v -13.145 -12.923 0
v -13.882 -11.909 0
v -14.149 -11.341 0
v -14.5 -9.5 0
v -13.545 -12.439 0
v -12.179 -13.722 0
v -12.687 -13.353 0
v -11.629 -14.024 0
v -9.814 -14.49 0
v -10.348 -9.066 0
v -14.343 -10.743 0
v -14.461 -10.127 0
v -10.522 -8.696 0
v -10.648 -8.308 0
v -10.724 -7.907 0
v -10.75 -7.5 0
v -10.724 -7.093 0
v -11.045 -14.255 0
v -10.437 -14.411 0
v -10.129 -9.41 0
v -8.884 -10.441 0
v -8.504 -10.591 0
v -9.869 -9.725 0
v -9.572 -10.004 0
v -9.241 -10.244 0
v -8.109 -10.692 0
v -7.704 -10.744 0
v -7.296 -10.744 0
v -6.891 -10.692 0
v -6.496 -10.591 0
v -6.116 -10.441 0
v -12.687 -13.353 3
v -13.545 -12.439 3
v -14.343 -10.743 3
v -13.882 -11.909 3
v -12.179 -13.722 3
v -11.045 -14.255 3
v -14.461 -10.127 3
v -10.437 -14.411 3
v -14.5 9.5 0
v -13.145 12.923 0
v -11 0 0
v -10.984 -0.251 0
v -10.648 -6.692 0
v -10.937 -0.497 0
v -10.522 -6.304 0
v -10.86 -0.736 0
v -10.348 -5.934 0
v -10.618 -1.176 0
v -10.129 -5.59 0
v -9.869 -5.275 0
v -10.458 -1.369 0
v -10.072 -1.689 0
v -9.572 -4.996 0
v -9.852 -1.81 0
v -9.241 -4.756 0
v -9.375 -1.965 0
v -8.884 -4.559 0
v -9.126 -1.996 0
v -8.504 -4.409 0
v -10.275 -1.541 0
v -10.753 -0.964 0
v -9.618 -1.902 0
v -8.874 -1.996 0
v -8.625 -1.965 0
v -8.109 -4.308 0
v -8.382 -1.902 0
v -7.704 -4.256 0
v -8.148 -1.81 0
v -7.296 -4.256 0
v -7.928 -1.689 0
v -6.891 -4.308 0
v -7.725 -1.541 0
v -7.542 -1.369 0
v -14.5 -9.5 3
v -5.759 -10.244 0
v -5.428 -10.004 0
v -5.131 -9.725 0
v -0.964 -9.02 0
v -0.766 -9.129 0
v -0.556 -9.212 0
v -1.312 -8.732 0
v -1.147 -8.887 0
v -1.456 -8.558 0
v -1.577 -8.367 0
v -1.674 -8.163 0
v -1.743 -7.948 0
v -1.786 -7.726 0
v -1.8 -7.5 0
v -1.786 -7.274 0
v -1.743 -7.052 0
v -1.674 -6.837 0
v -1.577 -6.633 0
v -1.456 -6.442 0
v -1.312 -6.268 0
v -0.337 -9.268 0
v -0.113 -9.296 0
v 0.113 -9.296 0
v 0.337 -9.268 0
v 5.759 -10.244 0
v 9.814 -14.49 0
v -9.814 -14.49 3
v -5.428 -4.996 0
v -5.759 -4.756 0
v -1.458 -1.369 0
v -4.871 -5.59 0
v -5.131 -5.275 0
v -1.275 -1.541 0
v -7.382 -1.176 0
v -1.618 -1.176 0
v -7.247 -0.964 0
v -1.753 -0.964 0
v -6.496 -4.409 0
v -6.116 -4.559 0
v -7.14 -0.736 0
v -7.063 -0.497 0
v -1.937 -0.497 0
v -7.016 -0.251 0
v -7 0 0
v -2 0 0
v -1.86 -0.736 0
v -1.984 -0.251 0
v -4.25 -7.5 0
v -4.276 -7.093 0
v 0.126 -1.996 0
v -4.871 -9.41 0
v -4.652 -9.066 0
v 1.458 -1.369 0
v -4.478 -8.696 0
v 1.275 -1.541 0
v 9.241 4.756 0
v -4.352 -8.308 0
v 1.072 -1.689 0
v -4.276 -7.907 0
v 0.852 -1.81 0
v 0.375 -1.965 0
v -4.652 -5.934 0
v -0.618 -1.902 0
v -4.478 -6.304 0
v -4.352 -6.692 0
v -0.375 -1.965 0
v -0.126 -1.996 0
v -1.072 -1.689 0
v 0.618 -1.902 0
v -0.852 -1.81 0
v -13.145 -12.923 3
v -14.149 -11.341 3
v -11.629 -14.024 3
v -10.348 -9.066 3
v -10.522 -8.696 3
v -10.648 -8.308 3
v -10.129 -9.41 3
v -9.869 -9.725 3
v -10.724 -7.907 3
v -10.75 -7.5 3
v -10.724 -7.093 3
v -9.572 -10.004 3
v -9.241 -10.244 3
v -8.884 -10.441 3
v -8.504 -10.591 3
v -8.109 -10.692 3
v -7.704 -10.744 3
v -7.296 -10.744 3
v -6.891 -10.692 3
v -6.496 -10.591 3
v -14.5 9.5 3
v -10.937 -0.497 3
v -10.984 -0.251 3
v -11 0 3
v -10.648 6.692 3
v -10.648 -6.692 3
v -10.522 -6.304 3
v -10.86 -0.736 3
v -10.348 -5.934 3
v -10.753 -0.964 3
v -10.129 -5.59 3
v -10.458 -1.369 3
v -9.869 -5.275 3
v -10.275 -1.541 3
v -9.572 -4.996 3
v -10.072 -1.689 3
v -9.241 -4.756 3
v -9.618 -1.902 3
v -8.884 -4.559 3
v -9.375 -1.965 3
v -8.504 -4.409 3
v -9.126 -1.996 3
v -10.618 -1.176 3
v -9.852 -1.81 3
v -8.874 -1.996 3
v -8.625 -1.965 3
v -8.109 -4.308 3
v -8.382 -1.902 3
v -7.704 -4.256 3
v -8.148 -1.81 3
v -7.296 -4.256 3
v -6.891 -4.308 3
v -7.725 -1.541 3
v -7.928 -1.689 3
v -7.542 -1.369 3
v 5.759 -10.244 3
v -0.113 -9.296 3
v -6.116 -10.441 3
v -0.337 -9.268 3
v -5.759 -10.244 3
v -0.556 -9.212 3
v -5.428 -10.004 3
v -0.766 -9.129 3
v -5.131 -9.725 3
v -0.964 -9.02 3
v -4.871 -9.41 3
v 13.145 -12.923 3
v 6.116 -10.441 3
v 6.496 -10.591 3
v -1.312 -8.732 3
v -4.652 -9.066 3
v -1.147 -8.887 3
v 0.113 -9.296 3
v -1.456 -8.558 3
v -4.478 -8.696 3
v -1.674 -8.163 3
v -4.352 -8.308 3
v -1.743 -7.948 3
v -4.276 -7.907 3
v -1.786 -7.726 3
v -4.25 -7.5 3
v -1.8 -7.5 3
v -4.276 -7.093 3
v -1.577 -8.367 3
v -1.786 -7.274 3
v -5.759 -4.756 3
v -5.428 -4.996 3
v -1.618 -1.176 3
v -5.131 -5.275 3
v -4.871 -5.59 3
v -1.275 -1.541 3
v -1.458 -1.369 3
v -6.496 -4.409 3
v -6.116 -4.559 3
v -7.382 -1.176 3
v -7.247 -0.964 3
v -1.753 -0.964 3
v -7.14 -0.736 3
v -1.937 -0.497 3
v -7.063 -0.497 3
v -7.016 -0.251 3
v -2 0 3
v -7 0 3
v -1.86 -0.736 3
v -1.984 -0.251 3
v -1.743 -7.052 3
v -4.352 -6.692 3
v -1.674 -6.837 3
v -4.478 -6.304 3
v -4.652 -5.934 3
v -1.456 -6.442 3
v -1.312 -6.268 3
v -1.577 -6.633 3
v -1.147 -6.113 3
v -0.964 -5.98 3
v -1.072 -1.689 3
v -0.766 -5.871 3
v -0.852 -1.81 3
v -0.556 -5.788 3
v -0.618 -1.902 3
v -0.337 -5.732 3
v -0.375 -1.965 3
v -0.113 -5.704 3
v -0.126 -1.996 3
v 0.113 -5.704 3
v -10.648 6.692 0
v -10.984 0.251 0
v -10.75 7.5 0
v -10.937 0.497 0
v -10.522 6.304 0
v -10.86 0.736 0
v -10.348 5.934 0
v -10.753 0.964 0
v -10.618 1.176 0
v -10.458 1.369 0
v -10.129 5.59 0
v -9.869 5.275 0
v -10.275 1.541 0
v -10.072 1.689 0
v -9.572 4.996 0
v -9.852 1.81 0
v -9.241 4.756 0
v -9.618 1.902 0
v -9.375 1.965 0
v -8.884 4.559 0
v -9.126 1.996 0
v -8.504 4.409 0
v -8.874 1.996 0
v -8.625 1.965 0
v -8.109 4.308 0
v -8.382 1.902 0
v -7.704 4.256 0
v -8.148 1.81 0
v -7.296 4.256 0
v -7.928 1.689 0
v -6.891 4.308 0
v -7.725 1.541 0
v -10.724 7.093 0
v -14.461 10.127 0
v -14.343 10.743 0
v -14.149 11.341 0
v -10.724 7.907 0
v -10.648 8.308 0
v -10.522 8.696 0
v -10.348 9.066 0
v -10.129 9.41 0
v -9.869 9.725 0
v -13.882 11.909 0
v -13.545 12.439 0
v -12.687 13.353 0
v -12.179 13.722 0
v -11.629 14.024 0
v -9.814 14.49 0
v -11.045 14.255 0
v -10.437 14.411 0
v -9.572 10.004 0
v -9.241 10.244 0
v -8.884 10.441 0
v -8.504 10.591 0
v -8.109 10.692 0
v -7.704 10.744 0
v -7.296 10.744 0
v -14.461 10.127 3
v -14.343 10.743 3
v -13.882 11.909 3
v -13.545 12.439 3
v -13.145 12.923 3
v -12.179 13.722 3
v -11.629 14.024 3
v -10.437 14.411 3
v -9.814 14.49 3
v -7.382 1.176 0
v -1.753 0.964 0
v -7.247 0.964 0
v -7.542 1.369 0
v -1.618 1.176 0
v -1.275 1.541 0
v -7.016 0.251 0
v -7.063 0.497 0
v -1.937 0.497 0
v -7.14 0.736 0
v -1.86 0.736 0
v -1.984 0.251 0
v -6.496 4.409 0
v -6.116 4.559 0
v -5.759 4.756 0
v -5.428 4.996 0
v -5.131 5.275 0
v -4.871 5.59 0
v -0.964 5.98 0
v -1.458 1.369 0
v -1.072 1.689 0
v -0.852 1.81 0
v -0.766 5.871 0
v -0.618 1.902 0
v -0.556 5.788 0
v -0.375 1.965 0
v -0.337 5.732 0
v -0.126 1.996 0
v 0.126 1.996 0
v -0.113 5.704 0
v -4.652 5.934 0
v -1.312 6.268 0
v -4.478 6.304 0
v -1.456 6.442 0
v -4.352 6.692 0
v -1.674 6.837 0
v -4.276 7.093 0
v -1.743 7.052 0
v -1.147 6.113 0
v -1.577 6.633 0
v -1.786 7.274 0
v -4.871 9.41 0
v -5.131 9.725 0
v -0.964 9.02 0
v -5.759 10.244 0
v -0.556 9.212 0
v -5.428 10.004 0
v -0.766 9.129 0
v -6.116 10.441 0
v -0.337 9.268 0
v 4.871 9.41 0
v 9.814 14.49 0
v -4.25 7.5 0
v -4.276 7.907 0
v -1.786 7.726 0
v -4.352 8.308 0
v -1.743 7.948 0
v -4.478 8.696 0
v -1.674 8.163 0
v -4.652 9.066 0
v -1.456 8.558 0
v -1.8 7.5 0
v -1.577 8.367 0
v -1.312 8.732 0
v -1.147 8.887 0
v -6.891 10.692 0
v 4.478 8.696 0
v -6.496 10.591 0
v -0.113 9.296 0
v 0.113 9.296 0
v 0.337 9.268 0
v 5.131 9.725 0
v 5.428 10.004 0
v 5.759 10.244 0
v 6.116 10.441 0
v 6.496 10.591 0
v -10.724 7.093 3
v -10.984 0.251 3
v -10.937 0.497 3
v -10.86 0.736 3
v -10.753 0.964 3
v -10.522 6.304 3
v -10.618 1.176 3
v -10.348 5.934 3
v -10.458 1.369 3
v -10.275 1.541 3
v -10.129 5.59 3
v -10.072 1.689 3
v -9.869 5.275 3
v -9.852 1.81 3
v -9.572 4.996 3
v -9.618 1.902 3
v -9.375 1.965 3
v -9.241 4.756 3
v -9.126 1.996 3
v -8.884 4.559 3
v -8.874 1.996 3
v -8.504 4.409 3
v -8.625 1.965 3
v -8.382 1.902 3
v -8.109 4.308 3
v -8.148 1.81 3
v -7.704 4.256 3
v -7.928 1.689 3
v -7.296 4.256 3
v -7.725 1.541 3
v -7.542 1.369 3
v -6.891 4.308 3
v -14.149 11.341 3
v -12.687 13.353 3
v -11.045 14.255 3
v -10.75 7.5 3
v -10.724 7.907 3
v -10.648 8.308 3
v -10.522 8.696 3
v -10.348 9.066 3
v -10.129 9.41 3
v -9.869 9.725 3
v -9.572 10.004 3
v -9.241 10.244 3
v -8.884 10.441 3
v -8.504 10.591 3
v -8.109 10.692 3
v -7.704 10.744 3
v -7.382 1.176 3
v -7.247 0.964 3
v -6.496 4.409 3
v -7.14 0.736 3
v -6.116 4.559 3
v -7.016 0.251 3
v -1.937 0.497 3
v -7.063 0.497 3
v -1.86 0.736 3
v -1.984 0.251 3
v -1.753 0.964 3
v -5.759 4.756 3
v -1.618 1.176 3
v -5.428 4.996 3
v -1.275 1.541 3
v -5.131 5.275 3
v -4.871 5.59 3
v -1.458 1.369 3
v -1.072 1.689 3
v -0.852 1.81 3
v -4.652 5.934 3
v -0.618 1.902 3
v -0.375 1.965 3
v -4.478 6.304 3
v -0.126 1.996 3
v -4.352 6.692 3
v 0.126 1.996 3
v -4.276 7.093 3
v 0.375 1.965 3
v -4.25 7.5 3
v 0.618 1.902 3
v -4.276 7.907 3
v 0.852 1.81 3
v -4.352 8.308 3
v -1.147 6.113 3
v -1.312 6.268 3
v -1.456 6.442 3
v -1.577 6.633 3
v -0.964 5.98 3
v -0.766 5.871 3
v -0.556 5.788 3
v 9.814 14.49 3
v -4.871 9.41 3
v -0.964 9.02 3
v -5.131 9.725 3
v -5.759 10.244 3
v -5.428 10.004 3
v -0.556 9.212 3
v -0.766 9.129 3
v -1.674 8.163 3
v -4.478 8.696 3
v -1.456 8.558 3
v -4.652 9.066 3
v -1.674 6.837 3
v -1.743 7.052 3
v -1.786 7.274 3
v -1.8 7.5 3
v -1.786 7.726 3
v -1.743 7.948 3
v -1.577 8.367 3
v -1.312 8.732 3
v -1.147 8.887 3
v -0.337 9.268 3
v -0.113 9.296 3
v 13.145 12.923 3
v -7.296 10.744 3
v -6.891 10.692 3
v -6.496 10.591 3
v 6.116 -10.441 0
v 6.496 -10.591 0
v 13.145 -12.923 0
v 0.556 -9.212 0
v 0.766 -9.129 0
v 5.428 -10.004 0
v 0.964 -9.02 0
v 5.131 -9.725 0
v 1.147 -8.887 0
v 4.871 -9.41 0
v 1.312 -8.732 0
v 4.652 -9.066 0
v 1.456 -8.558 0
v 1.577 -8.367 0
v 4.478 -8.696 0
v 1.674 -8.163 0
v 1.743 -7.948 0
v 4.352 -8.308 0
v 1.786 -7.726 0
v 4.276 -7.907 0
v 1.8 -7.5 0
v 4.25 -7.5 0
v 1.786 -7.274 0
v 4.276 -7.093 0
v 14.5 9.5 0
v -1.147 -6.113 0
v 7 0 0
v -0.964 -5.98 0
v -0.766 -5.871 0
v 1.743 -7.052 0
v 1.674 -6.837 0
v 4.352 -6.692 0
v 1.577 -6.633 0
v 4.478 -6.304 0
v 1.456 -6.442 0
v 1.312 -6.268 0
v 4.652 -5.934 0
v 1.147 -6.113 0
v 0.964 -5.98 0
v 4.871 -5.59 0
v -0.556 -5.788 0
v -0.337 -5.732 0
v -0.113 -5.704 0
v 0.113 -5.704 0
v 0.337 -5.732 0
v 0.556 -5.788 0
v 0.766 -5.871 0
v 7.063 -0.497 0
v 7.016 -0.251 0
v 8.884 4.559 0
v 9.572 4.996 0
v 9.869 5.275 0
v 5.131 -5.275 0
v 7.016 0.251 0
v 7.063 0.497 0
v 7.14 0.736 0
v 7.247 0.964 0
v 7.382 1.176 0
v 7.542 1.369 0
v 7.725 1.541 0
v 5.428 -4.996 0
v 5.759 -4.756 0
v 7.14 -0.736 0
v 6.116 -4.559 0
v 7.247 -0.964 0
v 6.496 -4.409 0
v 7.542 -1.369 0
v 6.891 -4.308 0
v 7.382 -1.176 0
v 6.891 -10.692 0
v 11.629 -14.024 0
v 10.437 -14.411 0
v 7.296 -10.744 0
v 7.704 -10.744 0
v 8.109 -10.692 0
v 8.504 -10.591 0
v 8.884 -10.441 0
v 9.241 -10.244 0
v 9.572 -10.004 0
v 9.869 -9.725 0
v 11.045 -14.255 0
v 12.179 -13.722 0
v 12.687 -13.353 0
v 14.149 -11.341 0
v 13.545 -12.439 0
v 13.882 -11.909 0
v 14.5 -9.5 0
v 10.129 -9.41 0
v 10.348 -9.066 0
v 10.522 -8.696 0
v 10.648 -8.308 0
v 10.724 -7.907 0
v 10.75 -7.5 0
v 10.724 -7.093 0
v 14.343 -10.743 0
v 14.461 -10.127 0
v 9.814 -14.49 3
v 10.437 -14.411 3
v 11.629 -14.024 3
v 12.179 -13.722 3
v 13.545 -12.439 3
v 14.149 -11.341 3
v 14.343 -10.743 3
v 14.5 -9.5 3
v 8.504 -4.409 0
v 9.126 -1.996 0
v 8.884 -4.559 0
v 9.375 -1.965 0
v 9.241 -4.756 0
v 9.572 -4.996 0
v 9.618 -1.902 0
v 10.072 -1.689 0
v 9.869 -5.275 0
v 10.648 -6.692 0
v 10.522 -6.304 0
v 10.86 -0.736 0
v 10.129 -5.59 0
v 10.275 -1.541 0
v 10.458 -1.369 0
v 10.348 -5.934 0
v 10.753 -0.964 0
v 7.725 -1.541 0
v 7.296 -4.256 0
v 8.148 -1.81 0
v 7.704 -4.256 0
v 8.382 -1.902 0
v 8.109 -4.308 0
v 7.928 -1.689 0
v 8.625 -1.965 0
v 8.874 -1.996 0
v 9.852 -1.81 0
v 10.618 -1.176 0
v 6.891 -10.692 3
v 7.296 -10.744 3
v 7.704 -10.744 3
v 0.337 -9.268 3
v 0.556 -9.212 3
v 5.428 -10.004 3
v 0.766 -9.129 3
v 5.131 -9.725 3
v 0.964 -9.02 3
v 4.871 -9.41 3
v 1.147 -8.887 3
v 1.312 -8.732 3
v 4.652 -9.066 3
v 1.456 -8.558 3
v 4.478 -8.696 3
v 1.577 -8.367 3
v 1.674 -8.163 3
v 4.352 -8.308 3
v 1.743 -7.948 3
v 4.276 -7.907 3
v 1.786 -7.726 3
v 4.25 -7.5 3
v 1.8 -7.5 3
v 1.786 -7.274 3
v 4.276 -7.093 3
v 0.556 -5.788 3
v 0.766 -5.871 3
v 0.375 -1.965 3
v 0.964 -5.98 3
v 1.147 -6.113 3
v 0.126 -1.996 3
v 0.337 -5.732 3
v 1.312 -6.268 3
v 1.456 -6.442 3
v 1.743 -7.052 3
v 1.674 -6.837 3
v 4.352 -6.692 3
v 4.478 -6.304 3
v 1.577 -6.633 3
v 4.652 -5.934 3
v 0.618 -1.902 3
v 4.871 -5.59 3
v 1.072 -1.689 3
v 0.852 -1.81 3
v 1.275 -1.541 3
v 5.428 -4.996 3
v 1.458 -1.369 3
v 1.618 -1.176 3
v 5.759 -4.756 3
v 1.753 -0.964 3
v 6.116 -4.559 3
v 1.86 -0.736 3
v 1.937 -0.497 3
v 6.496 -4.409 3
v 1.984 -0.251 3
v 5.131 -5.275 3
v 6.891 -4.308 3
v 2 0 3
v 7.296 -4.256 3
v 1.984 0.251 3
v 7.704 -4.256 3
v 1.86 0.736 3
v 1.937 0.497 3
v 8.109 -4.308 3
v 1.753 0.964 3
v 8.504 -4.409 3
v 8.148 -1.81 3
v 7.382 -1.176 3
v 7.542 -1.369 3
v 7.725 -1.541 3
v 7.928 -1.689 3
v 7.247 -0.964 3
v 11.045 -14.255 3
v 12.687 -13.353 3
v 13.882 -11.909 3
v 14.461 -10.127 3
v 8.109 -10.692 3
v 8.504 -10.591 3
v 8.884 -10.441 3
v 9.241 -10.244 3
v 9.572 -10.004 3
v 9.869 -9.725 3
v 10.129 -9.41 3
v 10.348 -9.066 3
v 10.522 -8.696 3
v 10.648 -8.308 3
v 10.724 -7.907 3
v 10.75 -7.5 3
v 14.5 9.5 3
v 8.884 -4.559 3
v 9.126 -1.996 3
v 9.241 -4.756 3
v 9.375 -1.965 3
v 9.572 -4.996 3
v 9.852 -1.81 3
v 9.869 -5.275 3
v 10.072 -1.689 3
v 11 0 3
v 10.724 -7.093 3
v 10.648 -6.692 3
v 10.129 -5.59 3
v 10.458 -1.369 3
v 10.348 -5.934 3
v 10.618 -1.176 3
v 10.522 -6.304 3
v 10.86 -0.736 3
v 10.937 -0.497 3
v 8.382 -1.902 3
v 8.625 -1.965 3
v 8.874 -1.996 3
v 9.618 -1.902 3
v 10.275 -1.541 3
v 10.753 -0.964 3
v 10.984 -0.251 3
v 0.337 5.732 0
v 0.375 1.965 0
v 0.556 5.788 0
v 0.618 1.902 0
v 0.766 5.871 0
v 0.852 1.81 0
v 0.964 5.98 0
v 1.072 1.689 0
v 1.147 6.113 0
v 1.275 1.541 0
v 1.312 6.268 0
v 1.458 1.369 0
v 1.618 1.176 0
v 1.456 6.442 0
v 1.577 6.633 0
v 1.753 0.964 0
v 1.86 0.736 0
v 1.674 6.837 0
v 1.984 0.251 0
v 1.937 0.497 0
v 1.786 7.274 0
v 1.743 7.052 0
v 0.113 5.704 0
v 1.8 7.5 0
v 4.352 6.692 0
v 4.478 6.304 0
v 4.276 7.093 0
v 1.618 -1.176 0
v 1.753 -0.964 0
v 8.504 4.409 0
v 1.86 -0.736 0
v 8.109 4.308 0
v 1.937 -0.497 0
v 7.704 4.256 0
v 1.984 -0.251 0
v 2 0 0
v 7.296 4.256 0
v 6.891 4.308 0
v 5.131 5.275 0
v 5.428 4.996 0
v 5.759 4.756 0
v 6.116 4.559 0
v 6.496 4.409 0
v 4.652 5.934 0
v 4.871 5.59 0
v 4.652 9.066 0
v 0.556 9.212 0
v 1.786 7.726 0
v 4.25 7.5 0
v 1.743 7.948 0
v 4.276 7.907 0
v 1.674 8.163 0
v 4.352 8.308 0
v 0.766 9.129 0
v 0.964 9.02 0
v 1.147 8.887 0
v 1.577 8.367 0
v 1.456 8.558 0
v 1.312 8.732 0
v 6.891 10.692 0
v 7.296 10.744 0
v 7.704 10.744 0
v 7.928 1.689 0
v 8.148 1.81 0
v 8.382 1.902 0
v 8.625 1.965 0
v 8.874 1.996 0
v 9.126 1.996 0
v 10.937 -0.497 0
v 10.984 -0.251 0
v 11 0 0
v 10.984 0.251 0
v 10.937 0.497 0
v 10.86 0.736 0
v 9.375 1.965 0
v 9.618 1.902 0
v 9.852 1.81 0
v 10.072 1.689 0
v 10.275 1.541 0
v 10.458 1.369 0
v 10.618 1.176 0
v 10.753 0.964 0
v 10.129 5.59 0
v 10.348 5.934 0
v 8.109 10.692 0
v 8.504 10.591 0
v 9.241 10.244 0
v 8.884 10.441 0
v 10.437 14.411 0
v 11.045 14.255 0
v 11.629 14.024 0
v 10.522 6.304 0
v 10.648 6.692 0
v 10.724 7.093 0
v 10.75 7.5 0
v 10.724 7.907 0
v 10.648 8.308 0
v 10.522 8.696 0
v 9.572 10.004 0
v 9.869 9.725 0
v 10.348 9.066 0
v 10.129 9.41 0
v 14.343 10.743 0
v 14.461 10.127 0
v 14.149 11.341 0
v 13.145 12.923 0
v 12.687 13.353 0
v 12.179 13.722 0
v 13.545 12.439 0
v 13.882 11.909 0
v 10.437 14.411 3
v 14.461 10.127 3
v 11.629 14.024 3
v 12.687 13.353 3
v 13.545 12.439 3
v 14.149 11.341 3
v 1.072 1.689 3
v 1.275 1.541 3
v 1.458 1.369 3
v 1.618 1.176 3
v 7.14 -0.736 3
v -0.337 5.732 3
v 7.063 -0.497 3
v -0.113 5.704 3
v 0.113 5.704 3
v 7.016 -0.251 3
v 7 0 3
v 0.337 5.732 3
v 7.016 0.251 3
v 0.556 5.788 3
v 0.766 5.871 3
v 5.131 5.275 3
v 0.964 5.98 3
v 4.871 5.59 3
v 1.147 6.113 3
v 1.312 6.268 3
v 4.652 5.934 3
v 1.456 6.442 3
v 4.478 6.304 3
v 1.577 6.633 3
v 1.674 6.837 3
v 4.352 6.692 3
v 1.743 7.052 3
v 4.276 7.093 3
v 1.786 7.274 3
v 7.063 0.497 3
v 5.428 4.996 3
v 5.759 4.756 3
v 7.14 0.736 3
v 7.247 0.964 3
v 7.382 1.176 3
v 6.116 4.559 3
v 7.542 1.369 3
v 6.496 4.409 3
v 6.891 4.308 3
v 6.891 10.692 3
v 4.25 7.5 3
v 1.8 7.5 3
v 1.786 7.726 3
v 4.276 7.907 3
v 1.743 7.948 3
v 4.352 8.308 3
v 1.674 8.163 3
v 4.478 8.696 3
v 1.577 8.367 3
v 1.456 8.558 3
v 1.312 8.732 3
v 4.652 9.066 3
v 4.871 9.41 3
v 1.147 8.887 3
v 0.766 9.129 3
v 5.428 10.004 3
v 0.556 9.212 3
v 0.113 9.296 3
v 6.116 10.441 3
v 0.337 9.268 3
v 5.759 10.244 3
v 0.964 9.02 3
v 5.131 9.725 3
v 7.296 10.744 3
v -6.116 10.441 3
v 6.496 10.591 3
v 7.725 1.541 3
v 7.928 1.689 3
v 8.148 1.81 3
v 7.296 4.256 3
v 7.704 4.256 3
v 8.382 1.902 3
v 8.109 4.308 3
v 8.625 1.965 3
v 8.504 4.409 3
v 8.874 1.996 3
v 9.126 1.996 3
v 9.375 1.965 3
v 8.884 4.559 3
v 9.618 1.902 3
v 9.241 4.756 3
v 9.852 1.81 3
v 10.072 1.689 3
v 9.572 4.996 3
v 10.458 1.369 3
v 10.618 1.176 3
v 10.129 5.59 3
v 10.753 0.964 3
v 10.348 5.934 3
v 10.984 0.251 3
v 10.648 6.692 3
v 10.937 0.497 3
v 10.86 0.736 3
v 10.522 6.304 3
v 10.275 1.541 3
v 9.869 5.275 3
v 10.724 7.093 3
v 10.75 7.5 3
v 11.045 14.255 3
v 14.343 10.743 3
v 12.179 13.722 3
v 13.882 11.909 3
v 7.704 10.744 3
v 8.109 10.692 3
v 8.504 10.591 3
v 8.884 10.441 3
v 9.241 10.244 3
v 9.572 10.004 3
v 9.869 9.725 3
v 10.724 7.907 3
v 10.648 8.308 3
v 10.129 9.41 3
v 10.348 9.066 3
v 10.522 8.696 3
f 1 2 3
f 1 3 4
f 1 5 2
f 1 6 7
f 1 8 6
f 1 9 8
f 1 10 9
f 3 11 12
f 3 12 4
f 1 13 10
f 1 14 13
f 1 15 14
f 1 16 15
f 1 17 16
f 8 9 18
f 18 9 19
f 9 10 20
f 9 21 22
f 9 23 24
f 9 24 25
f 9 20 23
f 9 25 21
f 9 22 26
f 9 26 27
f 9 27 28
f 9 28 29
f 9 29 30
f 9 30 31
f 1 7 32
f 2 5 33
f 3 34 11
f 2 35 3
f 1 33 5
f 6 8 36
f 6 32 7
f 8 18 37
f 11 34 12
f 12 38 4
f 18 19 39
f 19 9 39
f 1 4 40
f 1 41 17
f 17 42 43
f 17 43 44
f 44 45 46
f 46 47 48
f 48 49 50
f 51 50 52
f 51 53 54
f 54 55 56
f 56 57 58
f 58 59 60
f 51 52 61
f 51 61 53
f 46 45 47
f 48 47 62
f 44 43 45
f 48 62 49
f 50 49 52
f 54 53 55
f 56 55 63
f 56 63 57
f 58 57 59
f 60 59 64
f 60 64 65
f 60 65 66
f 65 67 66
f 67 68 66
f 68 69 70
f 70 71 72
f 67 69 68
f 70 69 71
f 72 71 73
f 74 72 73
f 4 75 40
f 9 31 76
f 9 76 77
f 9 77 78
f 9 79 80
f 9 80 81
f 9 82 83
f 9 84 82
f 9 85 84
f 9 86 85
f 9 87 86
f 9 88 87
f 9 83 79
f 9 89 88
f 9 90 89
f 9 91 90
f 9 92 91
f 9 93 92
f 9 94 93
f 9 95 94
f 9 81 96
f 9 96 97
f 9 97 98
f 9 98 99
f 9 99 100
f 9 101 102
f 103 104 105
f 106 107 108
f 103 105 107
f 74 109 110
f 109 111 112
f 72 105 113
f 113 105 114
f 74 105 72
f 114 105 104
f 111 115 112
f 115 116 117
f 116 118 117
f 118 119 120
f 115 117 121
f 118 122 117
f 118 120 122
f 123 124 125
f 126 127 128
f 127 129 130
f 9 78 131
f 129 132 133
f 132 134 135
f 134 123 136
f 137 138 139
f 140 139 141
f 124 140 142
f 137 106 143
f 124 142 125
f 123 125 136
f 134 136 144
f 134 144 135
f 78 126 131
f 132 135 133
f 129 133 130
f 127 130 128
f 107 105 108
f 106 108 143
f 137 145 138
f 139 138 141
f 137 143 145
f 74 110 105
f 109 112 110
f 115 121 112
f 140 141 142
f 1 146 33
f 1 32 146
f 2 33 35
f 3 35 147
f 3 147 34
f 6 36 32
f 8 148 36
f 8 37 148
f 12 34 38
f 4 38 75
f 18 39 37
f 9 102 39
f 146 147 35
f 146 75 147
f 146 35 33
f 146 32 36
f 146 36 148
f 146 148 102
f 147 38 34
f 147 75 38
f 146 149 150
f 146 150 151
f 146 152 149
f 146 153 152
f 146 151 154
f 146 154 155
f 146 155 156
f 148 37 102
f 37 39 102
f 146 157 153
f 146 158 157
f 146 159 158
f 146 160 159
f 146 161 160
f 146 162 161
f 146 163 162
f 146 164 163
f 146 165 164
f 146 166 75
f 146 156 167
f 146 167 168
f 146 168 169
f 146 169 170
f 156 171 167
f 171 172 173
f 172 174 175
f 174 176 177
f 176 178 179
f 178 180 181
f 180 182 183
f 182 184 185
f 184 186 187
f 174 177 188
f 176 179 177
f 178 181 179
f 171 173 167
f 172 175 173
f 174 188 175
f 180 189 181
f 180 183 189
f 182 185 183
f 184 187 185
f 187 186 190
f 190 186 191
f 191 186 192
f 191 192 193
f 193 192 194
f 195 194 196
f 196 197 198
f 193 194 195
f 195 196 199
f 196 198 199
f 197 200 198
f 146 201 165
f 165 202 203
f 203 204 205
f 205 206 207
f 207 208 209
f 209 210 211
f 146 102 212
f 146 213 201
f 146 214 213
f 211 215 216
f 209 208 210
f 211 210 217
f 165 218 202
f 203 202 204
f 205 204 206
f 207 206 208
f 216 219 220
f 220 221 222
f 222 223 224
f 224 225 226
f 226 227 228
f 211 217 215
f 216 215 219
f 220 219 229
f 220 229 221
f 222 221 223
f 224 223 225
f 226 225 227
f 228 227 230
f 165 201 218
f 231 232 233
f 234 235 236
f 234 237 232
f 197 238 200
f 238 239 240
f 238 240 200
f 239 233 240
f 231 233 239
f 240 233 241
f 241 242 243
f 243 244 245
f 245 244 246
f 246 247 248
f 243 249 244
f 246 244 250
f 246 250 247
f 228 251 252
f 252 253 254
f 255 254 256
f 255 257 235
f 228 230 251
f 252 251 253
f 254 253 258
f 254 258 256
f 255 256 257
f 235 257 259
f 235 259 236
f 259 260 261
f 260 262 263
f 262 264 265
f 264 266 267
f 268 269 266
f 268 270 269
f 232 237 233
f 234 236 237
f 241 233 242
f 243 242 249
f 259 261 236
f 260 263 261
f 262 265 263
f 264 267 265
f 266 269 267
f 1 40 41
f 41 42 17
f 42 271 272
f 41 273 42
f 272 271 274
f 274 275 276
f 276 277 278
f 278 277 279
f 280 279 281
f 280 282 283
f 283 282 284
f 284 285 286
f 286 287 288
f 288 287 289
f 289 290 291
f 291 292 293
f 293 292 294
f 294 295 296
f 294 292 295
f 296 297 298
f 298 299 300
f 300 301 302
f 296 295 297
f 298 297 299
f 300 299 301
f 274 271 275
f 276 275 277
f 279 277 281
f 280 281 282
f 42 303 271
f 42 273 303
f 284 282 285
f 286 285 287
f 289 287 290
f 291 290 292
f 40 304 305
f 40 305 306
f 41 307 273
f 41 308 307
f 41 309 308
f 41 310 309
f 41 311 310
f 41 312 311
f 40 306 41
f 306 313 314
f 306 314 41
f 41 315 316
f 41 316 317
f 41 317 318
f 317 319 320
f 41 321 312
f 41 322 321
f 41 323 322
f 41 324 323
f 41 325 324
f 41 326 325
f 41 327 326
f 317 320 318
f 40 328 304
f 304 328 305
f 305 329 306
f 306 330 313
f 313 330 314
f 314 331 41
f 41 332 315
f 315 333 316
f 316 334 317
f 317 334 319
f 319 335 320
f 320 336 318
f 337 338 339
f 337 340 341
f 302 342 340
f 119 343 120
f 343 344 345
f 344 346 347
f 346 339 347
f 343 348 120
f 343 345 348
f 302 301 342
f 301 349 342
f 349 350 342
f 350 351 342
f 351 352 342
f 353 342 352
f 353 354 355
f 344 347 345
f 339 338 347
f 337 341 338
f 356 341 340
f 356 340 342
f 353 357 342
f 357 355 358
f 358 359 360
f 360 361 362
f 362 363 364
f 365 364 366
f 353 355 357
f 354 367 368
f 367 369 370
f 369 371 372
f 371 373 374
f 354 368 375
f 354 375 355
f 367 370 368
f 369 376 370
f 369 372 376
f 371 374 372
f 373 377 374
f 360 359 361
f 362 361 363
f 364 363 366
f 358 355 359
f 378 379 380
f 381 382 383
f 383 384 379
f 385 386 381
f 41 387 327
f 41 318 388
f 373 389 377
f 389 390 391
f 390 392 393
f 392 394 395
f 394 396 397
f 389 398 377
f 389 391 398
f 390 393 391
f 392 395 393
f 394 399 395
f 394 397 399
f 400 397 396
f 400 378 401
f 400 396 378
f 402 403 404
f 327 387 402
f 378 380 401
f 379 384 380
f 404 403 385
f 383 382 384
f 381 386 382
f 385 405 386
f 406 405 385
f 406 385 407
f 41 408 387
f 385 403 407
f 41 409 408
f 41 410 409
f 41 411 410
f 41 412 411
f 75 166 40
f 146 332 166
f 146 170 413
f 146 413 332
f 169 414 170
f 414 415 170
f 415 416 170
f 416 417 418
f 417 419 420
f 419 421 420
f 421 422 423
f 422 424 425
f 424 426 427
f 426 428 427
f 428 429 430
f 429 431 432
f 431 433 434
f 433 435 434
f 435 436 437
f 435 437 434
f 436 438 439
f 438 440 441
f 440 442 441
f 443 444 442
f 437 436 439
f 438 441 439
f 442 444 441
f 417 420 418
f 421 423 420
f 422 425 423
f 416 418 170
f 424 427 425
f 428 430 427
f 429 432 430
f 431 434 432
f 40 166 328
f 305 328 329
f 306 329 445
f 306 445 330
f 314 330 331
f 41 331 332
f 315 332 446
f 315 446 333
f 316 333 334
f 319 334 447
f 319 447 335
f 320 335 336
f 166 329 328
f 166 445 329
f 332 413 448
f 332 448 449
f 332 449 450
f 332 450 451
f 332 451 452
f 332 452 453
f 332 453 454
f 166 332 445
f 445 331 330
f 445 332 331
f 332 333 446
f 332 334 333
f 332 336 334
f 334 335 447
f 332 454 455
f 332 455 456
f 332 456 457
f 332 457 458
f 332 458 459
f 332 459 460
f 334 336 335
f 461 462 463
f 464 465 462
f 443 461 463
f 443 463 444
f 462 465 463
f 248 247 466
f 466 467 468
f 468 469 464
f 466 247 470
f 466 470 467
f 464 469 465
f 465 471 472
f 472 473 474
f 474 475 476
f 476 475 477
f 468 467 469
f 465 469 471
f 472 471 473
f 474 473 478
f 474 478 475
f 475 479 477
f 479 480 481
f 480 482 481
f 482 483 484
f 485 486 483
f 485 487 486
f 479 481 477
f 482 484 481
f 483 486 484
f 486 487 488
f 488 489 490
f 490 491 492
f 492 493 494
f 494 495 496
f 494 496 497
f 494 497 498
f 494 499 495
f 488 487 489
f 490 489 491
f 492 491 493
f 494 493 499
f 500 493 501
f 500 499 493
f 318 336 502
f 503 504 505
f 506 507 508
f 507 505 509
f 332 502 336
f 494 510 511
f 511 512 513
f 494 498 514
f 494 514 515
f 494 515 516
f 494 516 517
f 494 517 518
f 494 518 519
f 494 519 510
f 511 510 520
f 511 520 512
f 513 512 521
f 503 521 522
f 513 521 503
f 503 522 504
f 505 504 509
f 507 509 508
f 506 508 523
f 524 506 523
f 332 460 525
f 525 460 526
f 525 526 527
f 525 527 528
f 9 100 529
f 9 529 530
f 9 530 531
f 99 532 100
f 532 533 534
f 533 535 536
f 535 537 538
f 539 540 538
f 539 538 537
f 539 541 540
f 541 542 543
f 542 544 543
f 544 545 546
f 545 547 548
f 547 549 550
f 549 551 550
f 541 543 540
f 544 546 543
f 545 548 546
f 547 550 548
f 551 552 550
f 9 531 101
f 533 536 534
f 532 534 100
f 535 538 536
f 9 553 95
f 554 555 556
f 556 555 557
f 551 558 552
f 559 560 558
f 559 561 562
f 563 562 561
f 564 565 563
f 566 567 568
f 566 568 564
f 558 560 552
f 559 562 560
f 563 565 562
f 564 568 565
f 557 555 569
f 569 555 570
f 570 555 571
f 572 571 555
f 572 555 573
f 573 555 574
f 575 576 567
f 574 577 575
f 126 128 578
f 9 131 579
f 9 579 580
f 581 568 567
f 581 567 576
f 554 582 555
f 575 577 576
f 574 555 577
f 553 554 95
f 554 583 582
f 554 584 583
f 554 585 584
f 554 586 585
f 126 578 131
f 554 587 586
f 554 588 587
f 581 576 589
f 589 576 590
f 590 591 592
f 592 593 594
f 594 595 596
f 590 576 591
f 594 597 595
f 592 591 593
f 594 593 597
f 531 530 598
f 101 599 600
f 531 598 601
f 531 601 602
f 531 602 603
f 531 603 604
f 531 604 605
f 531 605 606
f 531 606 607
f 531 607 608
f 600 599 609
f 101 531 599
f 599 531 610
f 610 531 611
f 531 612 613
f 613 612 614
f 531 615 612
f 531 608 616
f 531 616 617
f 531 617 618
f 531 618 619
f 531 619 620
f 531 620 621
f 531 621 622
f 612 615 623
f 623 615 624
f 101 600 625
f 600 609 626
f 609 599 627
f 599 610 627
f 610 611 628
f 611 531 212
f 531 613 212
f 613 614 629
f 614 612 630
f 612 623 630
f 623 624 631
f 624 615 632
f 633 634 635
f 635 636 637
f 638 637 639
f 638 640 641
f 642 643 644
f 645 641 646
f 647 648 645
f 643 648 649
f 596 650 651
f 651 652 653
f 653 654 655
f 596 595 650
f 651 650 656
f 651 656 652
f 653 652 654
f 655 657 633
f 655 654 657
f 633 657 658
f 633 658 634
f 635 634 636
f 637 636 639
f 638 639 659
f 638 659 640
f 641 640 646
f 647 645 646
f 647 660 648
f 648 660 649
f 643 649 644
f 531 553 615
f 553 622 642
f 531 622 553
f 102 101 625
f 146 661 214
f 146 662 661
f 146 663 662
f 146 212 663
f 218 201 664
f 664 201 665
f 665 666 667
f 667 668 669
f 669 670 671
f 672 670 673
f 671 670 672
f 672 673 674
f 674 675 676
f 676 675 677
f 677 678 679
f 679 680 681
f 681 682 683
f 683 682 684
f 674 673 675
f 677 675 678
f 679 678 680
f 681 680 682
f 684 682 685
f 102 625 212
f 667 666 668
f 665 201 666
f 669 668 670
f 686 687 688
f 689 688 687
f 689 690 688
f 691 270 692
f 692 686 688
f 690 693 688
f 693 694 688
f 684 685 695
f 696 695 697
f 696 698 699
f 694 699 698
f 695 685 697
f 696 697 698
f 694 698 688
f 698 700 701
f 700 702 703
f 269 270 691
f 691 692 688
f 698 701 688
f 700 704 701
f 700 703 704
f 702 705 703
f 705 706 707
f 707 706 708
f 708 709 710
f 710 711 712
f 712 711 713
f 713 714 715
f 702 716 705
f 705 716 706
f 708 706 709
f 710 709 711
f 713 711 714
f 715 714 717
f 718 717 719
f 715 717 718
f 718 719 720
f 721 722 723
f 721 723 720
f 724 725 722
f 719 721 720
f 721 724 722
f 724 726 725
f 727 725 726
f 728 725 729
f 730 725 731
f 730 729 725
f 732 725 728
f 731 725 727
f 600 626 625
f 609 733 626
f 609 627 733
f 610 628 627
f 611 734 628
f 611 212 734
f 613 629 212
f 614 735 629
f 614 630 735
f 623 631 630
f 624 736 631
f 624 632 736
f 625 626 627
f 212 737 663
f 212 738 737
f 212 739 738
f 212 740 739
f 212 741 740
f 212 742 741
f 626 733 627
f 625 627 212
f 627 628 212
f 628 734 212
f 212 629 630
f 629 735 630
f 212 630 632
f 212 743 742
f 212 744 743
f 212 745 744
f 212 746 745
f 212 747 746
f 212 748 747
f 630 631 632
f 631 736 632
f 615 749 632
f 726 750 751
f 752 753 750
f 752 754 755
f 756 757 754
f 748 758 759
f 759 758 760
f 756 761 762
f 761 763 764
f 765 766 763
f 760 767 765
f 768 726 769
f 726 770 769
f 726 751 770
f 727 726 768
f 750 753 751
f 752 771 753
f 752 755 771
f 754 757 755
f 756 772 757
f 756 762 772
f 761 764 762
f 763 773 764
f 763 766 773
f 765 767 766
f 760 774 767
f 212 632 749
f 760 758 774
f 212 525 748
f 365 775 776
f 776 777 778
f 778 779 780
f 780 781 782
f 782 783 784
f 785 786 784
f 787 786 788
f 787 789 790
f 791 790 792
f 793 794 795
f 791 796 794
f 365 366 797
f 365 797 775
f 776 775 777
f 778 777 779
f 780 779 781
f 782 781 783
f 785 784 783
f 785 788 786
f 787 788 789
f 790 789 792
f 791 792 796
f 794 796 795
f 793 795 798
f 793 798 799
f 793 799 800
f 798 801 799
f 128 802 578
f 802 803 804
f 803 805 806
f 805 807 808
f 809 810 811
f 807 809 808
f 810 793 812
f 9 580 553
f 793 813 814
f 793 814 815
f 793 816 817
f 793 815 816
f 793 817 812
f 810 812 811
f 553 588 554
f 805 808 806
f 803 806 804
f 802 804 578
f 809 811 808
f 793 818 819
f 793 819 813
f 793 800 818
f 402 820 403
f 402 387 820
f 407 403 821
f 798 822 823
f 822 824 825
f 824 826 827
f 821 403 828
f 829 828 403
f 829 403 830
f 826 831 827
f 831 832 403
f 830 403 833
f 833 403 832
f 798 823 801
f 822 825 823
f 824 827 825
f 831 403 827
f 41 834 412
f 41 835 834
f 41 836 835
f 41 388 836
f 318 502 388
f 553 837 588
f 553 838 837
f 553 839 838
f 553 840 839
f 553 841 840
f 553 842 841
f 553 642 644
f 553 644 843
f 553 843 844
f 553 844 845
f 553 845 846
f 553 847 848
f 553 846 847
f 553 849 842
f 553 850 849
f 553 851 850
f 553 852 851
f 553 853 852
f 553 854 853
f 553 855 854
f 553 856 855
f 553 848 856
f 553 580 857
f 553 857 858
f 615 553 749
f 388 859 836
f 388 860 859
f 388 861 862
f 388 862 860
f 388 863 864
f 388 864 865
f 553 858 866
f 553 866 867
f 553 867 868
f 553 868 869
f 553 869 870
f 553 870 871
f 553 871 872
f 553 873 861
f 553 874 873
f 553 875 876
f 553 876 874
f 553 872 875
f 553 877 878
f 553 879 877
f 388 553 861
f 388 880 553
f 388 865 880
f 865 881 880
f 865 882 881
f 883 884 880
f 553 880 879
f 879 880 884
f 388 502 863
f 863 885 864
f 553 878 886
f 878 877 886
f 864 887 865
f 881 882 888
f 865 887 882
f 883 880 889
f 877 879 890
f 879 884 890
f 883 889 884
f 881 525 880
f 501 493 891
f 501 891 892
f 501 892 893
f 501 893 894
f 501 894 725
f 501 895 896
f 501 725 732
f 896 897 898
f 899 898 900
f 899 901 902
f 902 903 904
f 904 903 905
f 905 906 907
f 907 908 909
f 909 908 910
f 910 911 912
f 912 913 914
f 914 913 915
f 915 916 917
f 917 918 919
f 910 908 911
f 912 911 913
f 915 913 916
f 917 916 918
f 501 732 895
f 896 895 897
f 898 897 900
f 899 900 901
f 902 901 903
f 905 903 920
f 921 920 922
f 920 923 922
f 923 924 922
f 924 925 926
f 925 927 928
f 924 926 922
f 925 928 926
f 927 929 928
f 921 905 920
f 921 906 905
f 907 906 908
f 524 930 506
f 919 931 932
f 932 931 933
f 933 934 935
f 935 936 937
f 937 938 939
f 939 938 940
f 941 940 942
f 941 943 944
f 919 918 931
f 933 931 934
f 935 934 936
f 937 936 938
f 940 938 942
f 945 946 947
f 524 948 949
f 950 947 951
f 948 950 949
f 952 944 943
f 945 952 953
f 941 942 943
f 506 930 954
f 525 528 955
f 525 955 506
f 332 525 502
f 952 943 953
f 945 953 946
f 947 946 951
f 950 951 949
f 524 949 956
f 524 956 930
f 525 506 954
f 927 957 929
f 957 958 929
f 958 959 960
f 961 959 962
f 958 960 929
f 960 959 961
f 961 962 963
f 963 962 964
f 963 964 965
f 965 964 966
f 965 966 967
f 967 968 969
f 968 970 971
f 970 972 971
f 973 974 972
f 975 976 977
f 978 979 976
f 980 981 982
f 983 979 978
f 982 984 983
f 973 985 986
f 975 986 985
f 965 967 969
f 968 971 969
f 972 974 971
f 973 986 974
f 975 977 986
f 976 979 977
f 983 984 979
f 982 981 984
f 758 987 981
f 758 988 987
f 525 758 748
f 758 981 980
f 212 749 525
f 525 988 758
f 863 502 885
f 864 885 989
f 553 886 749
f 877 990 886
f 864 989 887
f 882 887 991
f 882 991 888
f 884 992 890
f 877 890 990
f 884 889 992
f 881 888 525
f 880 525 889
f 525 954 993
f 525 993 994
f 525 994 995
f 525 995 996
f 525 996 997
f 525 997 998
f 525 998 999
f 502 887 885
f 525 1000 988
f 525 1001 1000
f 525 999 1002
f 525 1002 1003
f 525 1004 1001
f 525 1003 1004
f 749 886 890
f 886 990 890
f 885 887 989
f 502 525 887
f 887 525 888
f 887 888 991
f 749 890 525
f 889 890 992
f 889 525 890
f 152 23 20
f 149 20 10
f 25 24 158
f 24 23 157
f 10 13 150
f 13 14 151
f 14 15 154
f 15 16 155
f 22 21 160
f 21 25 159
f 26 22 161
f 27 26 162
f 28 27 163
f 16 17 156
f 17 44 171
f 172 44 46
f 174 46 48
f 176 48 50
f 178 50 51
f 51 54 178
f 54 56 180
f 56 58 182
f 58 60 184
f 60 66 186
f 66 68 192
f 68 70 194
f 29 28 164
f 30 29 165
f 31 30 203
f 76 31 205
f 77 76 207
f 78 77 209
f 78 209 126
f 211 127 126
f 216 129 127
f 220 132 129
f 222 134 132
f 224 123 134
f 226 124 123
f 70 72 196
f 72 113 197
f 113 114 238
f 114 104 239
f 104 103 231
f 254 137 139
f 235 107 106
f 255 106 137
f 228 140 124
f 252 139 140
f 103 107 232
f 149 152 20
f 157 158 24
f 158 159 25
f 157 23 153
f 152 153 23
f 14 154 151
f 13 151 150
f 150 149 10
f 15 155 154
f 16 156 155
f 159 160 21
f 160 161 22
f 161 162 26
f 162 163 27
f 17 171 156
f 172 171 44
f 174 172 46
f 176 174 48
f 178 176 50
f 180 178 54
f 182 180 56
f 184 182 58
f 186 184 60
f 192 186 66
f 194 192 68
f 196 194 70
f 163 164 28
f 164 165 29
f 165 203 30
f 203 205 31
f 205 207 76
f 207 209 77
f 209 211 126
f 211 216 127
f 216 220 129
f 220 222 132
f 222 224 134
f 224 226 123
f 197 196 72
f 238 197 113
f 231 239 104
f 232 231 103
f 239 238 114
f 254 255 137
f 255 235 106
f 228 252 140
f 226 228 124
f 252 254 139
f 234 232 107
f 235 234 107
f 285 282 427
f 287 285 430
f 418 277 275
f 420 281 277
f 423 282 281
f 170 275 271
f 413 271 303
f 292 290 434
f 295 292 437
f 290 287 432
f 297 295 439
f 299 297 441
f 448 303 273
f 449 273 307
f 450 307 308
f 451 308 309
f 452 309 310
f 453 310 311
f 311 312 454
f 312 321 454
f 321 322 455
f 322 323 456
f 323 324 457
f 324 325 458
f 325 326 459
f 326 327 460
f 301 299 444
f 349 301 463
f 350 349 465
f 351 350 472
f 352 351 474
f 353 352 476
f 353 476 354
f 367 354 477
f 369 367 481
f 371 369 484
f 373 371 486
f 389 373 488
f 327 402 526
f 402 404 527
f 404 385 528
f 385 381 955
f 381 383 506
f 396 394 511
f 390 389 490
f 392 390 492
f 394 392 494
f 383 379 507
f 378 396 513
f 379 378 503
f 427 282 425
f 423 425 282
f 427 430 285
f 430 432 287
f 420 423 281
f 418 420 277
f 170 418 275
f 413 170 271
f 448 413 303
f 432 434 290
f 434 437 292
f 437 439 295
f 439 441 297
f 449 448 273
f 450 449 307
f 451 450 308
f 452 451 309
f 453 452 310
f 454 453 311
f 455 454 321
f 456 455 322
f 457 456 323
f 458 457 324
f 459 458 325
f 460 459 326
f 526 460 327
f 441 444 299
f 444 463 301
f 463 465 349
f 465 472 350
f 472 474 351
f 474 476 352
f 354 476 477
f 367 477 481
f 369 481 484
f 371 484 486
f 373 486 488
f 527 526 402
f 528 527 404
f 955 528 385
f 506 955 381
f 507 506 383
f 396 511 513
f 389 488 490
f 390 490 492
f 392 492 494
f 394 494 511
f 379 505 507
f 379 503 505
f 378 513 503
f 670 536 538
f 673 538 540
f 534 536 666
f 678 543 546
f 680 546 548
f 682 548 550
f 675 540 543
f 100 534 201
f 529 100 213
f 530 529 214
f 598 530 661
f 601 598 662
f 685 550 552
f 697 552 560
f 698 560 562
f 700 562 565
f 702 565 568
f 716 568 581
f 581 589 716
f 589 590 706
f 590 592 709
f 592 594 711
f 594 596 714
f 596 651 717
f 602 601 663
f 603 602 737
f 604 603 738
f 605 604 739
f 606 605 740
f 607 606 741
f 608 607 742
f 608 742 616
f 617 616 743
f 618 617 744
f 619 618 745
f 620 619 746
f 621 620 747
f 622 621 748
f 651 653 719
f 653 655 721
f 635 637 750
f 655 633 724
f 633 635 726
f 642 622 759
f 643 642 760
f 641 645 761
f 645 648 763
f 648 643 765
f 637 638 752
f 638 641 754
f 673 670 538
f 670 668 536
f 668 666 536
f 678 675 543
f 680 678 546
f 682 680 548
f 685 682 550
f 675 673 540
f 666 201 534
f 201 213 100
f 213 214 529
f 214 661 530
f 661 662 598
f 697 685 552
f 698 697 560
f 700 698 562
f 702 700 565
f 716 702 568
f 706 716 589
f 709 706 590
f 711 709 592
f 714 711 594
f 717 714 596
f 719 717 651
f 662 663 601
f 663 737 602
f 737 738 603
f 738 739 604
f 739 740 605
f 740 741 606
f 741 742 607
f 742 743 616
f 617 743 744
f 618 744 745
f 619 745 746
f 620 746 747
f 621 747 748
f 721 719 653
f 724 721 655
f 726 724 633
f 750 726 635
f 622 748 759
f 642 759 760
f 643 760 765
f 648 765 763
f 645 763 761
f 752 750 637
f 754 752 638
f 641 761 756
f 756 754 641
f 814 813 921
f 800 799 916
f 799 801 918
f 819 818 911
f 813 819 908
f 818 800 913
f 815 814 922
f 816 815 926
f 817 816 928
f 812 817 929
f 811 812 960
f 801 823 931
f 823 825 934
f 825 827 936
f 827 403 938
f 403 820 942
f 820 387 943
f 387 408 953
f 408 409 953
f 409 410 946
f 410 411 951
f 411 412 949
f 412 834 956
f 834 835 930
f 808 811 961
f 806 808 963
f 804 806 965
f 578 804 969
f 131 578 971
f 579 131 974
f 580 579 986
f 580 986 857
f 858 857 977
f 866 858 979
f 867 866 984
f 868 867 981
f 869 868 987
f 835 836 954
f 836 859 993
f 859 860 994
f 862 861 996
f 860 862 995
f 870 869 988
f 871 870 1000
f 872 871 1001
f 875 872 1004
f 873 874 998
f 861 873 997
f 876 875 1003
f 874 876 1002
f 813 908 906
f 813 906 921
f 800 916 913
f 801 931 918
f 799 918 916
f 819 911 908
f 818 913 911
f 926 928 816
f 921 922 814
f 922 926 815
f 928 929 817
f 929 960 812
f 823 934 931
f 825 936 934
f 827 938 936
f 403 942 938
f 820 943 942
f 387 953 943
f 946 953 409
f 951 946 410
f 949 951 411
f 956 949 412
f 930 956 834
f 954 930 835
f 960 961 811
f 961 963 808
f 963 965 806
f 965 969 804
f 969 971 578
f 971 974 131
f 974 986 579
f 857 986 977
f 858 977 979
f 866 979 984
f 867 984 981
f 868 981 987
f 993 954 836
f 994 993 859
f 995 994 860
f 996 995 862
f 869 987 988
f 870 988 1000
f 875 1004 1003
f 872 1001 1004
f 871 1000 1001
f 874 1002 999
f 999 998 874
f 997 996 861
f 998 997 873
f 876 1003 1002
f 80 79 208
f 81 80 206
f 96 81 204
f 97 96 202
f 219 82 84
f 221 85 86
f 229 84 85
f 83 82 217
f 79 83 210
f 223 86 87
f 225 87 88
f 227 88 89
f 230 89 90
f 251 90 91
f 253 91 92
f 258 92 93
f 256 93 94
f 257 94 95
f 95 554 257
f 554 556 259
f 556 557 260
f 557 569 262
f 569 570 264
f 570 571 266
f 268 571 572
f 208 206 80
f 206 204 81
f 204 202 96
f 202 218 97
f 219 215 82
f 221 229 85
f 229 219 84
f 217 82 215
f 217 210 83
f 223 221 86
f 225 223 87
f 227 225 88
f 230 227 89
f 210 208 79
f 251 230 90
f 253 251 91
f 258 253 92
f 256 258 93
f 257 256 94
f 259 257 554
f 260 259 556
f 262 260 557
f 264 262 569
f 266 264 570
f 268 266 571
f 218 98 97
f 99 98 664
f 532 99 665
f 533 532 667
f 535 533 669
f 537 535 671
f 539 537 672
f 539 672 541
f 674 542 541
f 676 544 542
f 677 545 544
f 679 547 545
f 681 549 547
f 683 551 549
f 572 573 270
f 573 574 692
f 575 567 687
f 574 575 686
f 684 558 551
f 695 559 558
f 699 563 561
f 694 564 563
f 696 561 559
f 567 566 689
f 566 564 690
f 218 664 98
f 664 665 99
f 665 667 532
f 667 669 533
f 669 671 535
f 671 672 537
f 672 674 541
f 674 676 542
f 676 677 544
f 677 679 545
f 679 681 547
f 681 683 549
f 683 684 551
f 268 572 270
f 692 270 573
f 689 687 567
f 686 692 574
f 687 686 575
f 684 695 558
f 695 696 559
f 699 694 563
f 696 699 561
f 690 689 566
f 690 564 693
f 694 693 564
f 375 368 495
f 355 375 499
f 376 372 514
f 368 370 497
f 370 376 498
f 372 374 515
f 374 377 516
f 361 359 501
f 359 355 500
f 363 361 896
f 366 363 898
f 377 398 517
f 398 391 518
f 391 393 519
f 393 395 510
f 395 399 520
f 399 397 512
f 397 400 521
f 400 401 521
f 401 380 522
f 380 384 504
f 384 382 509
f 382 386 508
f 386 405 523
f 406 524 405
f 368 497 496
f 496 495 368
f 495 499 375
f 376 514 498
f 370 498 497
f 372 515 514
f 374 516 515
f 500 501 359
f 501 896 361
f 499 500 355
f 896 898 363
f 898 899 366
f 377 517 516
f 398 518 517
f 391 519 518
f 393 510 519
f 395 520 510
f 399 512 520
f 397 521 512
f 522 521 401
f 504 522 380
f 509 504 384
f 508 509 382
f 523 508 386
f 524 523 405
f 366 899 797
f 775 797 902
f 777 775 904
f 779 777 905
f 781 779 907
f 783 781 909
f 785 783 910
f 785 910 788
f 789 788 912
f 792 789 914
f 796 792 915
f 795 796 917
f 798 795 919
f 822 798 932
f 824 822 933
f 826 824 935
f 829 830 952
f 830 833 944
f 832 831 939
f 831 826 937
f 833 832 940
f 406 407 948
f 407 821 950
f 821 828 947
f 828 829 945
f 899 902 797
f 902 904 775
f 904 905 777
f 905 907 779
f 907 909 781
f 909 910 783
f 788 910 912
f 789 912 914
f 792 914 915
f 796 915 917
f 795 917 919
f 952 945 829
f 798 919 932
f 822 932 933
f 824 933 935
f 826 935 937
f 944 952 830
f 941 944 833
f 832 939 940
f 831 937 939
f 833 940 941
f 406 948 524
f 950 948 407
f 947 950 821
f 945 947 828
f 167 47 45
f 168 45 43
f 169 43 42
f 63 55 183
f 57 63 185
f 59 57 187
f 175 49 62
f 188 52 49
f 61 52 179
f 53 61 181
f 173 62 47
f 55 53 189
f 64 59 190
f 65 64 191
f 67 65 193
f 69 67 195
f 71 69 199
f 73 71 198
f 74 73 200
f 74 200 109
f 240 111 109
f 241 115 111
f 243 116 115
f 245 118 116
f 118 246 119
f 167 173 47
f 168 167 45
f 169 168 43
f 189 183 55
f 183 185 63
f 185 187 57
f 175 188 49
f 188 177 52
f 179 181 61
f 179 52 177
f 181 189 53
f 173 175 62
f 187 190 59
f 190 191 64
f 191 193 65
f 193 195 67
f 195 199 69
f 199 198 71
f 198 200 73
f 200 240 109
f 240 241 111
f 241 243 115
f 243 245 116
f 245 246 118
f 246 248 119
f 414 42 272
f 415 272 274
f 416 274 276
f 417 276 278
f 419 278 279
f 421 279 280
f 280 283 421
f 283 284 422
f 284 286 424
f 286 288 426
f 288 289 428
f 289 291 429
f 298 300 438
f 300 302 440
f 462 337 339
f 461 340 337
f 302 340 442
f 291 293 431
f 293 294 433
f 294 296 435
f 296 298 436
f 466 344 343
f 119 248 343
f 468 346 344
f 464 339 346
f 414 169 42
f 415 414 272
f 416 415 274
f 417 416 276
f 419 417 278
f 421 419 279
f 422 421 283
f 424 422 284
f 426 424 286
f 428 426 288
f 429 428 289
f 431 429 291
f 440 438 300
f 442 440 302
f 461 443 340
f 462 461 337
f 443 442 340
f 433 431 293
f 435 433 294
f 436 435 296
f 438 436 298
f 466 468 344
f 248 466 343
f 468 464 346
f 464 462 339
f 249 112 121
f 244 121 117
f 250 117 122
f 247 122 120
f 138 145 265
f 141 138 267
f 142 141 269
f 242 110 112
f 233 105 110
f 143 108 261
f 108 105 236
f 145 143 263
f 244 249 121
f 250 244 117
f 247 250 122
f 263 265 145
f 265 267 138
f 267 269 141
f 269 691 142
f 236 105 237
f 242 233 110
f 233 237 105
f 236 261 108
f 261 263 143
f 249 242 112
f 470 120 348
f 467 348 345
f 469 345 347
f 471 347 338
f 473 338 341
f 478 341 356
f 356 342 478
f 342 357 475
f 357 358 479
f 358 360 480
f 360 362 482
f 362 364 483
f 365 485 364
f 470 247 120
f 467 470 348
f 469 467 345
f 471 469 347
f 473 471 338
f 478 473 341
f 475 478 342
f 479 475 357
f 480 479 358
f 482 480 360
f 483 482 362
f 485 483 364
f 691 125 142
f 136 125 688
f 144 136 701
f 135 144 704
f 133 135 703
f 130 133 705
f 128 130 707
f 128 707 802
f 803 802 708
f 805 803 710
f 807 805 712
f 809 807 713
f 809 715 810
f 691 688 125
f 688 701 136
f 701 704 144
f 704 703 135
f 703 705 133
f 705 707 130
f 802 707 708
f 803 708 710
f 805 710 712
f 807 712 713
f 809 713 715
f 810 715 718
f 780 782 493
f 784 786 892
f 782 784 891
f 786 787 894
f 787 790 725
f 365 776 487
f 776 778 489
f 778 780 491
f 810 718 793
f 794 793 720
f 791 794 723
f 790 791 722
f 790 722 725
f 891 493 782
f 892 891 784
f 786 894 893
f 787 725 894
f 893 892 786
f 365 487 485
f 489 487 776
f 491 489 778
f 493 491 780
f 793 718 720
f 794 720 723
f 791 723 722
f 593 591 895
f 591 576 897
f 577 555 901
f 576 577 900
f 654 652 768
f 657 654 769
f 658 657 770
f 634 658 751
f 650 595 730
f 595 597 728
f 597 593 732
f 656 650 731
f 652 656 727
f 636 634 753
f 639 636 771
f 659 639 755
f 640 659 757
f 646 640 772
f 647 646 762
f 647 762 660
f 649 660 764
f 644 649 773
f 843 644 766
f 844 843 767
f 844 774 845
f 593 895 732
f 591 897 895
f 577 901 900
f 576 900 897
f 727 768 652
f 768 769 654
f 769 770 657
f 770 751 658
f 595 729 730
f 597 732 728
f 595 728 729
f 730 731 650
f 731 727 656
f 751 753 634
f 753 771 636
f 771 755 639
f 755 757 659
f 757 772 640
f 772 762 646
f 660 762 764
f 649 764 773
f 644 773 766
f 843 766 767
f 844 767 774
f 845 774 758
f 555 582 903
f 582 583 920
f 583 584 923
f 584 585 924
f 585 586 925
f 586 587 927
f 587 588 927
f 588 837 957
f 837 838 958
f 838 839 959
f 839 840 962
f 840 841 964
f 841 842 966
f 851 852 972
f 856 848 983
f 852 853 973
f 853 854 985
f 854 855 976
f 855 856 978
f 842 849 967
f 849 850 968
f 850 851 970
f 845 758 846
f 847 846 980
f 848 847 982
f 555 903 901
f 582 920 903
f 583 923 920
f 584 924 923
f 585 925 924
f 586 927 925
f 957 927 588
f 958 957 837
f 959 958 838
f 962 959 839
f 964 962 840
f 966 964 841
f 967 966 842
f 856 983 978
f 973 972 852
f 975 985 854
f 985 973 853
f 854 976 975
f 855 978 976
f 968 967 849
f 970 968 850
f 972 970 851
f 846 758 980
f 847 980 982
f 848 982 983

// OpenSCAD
$fn = 50;

difference() {
	union() {
		hull() {
			translate(v = [-9.5, 9.5, 0]) {
				cylinder(h = 3, r = 5);
			}
			translate(v = [9.5, 9.5, 0]) {
				cylinder(h = 3, r = 5);
			}
			translate(v = [-9.5, -9.5, 0]) {
				cylinder(h = 3, r = 5);
			}
			translate(v = [9.5, -9.5, 0]) {
				cylinder(h = 3, r = 5);
			}
		}
	}
	union() {
		translate(v = [-7.5, -7.5, 0]) {
			cylinder(h = 3, r = 3.25);
		}
		translate(v = [-7.5, 7.5, 0]) {
			cylinder(h = 3, r = 3.25);
		}
		translate(v = [7.5, -7.5, 0]) {
			cylinder(h = 3, r = 3.25);
		}
		translate(v = [7.5, 7.5, 0]) {
			cylinder(h = 3, r = 3.25);
		}
		translate(v = [0.0, -7.5, 0]) {
			cylinder(h = 3, r = 1.8);
		}
		translate(v = [0.0, 7.5, 0]) {
			cylinder(h = 3, r = 1.8);
		}
		translate(v = [-9.0, 0, 0.0]) {
			cylinder(h = 3, r = 2.0);
		}
		cylinder(h = 3, r = 2.0);
		translate(v = [9.0, 0, 0.0]) {
			cylinder(h = 3, r = 2.0);
		}
	}
}
